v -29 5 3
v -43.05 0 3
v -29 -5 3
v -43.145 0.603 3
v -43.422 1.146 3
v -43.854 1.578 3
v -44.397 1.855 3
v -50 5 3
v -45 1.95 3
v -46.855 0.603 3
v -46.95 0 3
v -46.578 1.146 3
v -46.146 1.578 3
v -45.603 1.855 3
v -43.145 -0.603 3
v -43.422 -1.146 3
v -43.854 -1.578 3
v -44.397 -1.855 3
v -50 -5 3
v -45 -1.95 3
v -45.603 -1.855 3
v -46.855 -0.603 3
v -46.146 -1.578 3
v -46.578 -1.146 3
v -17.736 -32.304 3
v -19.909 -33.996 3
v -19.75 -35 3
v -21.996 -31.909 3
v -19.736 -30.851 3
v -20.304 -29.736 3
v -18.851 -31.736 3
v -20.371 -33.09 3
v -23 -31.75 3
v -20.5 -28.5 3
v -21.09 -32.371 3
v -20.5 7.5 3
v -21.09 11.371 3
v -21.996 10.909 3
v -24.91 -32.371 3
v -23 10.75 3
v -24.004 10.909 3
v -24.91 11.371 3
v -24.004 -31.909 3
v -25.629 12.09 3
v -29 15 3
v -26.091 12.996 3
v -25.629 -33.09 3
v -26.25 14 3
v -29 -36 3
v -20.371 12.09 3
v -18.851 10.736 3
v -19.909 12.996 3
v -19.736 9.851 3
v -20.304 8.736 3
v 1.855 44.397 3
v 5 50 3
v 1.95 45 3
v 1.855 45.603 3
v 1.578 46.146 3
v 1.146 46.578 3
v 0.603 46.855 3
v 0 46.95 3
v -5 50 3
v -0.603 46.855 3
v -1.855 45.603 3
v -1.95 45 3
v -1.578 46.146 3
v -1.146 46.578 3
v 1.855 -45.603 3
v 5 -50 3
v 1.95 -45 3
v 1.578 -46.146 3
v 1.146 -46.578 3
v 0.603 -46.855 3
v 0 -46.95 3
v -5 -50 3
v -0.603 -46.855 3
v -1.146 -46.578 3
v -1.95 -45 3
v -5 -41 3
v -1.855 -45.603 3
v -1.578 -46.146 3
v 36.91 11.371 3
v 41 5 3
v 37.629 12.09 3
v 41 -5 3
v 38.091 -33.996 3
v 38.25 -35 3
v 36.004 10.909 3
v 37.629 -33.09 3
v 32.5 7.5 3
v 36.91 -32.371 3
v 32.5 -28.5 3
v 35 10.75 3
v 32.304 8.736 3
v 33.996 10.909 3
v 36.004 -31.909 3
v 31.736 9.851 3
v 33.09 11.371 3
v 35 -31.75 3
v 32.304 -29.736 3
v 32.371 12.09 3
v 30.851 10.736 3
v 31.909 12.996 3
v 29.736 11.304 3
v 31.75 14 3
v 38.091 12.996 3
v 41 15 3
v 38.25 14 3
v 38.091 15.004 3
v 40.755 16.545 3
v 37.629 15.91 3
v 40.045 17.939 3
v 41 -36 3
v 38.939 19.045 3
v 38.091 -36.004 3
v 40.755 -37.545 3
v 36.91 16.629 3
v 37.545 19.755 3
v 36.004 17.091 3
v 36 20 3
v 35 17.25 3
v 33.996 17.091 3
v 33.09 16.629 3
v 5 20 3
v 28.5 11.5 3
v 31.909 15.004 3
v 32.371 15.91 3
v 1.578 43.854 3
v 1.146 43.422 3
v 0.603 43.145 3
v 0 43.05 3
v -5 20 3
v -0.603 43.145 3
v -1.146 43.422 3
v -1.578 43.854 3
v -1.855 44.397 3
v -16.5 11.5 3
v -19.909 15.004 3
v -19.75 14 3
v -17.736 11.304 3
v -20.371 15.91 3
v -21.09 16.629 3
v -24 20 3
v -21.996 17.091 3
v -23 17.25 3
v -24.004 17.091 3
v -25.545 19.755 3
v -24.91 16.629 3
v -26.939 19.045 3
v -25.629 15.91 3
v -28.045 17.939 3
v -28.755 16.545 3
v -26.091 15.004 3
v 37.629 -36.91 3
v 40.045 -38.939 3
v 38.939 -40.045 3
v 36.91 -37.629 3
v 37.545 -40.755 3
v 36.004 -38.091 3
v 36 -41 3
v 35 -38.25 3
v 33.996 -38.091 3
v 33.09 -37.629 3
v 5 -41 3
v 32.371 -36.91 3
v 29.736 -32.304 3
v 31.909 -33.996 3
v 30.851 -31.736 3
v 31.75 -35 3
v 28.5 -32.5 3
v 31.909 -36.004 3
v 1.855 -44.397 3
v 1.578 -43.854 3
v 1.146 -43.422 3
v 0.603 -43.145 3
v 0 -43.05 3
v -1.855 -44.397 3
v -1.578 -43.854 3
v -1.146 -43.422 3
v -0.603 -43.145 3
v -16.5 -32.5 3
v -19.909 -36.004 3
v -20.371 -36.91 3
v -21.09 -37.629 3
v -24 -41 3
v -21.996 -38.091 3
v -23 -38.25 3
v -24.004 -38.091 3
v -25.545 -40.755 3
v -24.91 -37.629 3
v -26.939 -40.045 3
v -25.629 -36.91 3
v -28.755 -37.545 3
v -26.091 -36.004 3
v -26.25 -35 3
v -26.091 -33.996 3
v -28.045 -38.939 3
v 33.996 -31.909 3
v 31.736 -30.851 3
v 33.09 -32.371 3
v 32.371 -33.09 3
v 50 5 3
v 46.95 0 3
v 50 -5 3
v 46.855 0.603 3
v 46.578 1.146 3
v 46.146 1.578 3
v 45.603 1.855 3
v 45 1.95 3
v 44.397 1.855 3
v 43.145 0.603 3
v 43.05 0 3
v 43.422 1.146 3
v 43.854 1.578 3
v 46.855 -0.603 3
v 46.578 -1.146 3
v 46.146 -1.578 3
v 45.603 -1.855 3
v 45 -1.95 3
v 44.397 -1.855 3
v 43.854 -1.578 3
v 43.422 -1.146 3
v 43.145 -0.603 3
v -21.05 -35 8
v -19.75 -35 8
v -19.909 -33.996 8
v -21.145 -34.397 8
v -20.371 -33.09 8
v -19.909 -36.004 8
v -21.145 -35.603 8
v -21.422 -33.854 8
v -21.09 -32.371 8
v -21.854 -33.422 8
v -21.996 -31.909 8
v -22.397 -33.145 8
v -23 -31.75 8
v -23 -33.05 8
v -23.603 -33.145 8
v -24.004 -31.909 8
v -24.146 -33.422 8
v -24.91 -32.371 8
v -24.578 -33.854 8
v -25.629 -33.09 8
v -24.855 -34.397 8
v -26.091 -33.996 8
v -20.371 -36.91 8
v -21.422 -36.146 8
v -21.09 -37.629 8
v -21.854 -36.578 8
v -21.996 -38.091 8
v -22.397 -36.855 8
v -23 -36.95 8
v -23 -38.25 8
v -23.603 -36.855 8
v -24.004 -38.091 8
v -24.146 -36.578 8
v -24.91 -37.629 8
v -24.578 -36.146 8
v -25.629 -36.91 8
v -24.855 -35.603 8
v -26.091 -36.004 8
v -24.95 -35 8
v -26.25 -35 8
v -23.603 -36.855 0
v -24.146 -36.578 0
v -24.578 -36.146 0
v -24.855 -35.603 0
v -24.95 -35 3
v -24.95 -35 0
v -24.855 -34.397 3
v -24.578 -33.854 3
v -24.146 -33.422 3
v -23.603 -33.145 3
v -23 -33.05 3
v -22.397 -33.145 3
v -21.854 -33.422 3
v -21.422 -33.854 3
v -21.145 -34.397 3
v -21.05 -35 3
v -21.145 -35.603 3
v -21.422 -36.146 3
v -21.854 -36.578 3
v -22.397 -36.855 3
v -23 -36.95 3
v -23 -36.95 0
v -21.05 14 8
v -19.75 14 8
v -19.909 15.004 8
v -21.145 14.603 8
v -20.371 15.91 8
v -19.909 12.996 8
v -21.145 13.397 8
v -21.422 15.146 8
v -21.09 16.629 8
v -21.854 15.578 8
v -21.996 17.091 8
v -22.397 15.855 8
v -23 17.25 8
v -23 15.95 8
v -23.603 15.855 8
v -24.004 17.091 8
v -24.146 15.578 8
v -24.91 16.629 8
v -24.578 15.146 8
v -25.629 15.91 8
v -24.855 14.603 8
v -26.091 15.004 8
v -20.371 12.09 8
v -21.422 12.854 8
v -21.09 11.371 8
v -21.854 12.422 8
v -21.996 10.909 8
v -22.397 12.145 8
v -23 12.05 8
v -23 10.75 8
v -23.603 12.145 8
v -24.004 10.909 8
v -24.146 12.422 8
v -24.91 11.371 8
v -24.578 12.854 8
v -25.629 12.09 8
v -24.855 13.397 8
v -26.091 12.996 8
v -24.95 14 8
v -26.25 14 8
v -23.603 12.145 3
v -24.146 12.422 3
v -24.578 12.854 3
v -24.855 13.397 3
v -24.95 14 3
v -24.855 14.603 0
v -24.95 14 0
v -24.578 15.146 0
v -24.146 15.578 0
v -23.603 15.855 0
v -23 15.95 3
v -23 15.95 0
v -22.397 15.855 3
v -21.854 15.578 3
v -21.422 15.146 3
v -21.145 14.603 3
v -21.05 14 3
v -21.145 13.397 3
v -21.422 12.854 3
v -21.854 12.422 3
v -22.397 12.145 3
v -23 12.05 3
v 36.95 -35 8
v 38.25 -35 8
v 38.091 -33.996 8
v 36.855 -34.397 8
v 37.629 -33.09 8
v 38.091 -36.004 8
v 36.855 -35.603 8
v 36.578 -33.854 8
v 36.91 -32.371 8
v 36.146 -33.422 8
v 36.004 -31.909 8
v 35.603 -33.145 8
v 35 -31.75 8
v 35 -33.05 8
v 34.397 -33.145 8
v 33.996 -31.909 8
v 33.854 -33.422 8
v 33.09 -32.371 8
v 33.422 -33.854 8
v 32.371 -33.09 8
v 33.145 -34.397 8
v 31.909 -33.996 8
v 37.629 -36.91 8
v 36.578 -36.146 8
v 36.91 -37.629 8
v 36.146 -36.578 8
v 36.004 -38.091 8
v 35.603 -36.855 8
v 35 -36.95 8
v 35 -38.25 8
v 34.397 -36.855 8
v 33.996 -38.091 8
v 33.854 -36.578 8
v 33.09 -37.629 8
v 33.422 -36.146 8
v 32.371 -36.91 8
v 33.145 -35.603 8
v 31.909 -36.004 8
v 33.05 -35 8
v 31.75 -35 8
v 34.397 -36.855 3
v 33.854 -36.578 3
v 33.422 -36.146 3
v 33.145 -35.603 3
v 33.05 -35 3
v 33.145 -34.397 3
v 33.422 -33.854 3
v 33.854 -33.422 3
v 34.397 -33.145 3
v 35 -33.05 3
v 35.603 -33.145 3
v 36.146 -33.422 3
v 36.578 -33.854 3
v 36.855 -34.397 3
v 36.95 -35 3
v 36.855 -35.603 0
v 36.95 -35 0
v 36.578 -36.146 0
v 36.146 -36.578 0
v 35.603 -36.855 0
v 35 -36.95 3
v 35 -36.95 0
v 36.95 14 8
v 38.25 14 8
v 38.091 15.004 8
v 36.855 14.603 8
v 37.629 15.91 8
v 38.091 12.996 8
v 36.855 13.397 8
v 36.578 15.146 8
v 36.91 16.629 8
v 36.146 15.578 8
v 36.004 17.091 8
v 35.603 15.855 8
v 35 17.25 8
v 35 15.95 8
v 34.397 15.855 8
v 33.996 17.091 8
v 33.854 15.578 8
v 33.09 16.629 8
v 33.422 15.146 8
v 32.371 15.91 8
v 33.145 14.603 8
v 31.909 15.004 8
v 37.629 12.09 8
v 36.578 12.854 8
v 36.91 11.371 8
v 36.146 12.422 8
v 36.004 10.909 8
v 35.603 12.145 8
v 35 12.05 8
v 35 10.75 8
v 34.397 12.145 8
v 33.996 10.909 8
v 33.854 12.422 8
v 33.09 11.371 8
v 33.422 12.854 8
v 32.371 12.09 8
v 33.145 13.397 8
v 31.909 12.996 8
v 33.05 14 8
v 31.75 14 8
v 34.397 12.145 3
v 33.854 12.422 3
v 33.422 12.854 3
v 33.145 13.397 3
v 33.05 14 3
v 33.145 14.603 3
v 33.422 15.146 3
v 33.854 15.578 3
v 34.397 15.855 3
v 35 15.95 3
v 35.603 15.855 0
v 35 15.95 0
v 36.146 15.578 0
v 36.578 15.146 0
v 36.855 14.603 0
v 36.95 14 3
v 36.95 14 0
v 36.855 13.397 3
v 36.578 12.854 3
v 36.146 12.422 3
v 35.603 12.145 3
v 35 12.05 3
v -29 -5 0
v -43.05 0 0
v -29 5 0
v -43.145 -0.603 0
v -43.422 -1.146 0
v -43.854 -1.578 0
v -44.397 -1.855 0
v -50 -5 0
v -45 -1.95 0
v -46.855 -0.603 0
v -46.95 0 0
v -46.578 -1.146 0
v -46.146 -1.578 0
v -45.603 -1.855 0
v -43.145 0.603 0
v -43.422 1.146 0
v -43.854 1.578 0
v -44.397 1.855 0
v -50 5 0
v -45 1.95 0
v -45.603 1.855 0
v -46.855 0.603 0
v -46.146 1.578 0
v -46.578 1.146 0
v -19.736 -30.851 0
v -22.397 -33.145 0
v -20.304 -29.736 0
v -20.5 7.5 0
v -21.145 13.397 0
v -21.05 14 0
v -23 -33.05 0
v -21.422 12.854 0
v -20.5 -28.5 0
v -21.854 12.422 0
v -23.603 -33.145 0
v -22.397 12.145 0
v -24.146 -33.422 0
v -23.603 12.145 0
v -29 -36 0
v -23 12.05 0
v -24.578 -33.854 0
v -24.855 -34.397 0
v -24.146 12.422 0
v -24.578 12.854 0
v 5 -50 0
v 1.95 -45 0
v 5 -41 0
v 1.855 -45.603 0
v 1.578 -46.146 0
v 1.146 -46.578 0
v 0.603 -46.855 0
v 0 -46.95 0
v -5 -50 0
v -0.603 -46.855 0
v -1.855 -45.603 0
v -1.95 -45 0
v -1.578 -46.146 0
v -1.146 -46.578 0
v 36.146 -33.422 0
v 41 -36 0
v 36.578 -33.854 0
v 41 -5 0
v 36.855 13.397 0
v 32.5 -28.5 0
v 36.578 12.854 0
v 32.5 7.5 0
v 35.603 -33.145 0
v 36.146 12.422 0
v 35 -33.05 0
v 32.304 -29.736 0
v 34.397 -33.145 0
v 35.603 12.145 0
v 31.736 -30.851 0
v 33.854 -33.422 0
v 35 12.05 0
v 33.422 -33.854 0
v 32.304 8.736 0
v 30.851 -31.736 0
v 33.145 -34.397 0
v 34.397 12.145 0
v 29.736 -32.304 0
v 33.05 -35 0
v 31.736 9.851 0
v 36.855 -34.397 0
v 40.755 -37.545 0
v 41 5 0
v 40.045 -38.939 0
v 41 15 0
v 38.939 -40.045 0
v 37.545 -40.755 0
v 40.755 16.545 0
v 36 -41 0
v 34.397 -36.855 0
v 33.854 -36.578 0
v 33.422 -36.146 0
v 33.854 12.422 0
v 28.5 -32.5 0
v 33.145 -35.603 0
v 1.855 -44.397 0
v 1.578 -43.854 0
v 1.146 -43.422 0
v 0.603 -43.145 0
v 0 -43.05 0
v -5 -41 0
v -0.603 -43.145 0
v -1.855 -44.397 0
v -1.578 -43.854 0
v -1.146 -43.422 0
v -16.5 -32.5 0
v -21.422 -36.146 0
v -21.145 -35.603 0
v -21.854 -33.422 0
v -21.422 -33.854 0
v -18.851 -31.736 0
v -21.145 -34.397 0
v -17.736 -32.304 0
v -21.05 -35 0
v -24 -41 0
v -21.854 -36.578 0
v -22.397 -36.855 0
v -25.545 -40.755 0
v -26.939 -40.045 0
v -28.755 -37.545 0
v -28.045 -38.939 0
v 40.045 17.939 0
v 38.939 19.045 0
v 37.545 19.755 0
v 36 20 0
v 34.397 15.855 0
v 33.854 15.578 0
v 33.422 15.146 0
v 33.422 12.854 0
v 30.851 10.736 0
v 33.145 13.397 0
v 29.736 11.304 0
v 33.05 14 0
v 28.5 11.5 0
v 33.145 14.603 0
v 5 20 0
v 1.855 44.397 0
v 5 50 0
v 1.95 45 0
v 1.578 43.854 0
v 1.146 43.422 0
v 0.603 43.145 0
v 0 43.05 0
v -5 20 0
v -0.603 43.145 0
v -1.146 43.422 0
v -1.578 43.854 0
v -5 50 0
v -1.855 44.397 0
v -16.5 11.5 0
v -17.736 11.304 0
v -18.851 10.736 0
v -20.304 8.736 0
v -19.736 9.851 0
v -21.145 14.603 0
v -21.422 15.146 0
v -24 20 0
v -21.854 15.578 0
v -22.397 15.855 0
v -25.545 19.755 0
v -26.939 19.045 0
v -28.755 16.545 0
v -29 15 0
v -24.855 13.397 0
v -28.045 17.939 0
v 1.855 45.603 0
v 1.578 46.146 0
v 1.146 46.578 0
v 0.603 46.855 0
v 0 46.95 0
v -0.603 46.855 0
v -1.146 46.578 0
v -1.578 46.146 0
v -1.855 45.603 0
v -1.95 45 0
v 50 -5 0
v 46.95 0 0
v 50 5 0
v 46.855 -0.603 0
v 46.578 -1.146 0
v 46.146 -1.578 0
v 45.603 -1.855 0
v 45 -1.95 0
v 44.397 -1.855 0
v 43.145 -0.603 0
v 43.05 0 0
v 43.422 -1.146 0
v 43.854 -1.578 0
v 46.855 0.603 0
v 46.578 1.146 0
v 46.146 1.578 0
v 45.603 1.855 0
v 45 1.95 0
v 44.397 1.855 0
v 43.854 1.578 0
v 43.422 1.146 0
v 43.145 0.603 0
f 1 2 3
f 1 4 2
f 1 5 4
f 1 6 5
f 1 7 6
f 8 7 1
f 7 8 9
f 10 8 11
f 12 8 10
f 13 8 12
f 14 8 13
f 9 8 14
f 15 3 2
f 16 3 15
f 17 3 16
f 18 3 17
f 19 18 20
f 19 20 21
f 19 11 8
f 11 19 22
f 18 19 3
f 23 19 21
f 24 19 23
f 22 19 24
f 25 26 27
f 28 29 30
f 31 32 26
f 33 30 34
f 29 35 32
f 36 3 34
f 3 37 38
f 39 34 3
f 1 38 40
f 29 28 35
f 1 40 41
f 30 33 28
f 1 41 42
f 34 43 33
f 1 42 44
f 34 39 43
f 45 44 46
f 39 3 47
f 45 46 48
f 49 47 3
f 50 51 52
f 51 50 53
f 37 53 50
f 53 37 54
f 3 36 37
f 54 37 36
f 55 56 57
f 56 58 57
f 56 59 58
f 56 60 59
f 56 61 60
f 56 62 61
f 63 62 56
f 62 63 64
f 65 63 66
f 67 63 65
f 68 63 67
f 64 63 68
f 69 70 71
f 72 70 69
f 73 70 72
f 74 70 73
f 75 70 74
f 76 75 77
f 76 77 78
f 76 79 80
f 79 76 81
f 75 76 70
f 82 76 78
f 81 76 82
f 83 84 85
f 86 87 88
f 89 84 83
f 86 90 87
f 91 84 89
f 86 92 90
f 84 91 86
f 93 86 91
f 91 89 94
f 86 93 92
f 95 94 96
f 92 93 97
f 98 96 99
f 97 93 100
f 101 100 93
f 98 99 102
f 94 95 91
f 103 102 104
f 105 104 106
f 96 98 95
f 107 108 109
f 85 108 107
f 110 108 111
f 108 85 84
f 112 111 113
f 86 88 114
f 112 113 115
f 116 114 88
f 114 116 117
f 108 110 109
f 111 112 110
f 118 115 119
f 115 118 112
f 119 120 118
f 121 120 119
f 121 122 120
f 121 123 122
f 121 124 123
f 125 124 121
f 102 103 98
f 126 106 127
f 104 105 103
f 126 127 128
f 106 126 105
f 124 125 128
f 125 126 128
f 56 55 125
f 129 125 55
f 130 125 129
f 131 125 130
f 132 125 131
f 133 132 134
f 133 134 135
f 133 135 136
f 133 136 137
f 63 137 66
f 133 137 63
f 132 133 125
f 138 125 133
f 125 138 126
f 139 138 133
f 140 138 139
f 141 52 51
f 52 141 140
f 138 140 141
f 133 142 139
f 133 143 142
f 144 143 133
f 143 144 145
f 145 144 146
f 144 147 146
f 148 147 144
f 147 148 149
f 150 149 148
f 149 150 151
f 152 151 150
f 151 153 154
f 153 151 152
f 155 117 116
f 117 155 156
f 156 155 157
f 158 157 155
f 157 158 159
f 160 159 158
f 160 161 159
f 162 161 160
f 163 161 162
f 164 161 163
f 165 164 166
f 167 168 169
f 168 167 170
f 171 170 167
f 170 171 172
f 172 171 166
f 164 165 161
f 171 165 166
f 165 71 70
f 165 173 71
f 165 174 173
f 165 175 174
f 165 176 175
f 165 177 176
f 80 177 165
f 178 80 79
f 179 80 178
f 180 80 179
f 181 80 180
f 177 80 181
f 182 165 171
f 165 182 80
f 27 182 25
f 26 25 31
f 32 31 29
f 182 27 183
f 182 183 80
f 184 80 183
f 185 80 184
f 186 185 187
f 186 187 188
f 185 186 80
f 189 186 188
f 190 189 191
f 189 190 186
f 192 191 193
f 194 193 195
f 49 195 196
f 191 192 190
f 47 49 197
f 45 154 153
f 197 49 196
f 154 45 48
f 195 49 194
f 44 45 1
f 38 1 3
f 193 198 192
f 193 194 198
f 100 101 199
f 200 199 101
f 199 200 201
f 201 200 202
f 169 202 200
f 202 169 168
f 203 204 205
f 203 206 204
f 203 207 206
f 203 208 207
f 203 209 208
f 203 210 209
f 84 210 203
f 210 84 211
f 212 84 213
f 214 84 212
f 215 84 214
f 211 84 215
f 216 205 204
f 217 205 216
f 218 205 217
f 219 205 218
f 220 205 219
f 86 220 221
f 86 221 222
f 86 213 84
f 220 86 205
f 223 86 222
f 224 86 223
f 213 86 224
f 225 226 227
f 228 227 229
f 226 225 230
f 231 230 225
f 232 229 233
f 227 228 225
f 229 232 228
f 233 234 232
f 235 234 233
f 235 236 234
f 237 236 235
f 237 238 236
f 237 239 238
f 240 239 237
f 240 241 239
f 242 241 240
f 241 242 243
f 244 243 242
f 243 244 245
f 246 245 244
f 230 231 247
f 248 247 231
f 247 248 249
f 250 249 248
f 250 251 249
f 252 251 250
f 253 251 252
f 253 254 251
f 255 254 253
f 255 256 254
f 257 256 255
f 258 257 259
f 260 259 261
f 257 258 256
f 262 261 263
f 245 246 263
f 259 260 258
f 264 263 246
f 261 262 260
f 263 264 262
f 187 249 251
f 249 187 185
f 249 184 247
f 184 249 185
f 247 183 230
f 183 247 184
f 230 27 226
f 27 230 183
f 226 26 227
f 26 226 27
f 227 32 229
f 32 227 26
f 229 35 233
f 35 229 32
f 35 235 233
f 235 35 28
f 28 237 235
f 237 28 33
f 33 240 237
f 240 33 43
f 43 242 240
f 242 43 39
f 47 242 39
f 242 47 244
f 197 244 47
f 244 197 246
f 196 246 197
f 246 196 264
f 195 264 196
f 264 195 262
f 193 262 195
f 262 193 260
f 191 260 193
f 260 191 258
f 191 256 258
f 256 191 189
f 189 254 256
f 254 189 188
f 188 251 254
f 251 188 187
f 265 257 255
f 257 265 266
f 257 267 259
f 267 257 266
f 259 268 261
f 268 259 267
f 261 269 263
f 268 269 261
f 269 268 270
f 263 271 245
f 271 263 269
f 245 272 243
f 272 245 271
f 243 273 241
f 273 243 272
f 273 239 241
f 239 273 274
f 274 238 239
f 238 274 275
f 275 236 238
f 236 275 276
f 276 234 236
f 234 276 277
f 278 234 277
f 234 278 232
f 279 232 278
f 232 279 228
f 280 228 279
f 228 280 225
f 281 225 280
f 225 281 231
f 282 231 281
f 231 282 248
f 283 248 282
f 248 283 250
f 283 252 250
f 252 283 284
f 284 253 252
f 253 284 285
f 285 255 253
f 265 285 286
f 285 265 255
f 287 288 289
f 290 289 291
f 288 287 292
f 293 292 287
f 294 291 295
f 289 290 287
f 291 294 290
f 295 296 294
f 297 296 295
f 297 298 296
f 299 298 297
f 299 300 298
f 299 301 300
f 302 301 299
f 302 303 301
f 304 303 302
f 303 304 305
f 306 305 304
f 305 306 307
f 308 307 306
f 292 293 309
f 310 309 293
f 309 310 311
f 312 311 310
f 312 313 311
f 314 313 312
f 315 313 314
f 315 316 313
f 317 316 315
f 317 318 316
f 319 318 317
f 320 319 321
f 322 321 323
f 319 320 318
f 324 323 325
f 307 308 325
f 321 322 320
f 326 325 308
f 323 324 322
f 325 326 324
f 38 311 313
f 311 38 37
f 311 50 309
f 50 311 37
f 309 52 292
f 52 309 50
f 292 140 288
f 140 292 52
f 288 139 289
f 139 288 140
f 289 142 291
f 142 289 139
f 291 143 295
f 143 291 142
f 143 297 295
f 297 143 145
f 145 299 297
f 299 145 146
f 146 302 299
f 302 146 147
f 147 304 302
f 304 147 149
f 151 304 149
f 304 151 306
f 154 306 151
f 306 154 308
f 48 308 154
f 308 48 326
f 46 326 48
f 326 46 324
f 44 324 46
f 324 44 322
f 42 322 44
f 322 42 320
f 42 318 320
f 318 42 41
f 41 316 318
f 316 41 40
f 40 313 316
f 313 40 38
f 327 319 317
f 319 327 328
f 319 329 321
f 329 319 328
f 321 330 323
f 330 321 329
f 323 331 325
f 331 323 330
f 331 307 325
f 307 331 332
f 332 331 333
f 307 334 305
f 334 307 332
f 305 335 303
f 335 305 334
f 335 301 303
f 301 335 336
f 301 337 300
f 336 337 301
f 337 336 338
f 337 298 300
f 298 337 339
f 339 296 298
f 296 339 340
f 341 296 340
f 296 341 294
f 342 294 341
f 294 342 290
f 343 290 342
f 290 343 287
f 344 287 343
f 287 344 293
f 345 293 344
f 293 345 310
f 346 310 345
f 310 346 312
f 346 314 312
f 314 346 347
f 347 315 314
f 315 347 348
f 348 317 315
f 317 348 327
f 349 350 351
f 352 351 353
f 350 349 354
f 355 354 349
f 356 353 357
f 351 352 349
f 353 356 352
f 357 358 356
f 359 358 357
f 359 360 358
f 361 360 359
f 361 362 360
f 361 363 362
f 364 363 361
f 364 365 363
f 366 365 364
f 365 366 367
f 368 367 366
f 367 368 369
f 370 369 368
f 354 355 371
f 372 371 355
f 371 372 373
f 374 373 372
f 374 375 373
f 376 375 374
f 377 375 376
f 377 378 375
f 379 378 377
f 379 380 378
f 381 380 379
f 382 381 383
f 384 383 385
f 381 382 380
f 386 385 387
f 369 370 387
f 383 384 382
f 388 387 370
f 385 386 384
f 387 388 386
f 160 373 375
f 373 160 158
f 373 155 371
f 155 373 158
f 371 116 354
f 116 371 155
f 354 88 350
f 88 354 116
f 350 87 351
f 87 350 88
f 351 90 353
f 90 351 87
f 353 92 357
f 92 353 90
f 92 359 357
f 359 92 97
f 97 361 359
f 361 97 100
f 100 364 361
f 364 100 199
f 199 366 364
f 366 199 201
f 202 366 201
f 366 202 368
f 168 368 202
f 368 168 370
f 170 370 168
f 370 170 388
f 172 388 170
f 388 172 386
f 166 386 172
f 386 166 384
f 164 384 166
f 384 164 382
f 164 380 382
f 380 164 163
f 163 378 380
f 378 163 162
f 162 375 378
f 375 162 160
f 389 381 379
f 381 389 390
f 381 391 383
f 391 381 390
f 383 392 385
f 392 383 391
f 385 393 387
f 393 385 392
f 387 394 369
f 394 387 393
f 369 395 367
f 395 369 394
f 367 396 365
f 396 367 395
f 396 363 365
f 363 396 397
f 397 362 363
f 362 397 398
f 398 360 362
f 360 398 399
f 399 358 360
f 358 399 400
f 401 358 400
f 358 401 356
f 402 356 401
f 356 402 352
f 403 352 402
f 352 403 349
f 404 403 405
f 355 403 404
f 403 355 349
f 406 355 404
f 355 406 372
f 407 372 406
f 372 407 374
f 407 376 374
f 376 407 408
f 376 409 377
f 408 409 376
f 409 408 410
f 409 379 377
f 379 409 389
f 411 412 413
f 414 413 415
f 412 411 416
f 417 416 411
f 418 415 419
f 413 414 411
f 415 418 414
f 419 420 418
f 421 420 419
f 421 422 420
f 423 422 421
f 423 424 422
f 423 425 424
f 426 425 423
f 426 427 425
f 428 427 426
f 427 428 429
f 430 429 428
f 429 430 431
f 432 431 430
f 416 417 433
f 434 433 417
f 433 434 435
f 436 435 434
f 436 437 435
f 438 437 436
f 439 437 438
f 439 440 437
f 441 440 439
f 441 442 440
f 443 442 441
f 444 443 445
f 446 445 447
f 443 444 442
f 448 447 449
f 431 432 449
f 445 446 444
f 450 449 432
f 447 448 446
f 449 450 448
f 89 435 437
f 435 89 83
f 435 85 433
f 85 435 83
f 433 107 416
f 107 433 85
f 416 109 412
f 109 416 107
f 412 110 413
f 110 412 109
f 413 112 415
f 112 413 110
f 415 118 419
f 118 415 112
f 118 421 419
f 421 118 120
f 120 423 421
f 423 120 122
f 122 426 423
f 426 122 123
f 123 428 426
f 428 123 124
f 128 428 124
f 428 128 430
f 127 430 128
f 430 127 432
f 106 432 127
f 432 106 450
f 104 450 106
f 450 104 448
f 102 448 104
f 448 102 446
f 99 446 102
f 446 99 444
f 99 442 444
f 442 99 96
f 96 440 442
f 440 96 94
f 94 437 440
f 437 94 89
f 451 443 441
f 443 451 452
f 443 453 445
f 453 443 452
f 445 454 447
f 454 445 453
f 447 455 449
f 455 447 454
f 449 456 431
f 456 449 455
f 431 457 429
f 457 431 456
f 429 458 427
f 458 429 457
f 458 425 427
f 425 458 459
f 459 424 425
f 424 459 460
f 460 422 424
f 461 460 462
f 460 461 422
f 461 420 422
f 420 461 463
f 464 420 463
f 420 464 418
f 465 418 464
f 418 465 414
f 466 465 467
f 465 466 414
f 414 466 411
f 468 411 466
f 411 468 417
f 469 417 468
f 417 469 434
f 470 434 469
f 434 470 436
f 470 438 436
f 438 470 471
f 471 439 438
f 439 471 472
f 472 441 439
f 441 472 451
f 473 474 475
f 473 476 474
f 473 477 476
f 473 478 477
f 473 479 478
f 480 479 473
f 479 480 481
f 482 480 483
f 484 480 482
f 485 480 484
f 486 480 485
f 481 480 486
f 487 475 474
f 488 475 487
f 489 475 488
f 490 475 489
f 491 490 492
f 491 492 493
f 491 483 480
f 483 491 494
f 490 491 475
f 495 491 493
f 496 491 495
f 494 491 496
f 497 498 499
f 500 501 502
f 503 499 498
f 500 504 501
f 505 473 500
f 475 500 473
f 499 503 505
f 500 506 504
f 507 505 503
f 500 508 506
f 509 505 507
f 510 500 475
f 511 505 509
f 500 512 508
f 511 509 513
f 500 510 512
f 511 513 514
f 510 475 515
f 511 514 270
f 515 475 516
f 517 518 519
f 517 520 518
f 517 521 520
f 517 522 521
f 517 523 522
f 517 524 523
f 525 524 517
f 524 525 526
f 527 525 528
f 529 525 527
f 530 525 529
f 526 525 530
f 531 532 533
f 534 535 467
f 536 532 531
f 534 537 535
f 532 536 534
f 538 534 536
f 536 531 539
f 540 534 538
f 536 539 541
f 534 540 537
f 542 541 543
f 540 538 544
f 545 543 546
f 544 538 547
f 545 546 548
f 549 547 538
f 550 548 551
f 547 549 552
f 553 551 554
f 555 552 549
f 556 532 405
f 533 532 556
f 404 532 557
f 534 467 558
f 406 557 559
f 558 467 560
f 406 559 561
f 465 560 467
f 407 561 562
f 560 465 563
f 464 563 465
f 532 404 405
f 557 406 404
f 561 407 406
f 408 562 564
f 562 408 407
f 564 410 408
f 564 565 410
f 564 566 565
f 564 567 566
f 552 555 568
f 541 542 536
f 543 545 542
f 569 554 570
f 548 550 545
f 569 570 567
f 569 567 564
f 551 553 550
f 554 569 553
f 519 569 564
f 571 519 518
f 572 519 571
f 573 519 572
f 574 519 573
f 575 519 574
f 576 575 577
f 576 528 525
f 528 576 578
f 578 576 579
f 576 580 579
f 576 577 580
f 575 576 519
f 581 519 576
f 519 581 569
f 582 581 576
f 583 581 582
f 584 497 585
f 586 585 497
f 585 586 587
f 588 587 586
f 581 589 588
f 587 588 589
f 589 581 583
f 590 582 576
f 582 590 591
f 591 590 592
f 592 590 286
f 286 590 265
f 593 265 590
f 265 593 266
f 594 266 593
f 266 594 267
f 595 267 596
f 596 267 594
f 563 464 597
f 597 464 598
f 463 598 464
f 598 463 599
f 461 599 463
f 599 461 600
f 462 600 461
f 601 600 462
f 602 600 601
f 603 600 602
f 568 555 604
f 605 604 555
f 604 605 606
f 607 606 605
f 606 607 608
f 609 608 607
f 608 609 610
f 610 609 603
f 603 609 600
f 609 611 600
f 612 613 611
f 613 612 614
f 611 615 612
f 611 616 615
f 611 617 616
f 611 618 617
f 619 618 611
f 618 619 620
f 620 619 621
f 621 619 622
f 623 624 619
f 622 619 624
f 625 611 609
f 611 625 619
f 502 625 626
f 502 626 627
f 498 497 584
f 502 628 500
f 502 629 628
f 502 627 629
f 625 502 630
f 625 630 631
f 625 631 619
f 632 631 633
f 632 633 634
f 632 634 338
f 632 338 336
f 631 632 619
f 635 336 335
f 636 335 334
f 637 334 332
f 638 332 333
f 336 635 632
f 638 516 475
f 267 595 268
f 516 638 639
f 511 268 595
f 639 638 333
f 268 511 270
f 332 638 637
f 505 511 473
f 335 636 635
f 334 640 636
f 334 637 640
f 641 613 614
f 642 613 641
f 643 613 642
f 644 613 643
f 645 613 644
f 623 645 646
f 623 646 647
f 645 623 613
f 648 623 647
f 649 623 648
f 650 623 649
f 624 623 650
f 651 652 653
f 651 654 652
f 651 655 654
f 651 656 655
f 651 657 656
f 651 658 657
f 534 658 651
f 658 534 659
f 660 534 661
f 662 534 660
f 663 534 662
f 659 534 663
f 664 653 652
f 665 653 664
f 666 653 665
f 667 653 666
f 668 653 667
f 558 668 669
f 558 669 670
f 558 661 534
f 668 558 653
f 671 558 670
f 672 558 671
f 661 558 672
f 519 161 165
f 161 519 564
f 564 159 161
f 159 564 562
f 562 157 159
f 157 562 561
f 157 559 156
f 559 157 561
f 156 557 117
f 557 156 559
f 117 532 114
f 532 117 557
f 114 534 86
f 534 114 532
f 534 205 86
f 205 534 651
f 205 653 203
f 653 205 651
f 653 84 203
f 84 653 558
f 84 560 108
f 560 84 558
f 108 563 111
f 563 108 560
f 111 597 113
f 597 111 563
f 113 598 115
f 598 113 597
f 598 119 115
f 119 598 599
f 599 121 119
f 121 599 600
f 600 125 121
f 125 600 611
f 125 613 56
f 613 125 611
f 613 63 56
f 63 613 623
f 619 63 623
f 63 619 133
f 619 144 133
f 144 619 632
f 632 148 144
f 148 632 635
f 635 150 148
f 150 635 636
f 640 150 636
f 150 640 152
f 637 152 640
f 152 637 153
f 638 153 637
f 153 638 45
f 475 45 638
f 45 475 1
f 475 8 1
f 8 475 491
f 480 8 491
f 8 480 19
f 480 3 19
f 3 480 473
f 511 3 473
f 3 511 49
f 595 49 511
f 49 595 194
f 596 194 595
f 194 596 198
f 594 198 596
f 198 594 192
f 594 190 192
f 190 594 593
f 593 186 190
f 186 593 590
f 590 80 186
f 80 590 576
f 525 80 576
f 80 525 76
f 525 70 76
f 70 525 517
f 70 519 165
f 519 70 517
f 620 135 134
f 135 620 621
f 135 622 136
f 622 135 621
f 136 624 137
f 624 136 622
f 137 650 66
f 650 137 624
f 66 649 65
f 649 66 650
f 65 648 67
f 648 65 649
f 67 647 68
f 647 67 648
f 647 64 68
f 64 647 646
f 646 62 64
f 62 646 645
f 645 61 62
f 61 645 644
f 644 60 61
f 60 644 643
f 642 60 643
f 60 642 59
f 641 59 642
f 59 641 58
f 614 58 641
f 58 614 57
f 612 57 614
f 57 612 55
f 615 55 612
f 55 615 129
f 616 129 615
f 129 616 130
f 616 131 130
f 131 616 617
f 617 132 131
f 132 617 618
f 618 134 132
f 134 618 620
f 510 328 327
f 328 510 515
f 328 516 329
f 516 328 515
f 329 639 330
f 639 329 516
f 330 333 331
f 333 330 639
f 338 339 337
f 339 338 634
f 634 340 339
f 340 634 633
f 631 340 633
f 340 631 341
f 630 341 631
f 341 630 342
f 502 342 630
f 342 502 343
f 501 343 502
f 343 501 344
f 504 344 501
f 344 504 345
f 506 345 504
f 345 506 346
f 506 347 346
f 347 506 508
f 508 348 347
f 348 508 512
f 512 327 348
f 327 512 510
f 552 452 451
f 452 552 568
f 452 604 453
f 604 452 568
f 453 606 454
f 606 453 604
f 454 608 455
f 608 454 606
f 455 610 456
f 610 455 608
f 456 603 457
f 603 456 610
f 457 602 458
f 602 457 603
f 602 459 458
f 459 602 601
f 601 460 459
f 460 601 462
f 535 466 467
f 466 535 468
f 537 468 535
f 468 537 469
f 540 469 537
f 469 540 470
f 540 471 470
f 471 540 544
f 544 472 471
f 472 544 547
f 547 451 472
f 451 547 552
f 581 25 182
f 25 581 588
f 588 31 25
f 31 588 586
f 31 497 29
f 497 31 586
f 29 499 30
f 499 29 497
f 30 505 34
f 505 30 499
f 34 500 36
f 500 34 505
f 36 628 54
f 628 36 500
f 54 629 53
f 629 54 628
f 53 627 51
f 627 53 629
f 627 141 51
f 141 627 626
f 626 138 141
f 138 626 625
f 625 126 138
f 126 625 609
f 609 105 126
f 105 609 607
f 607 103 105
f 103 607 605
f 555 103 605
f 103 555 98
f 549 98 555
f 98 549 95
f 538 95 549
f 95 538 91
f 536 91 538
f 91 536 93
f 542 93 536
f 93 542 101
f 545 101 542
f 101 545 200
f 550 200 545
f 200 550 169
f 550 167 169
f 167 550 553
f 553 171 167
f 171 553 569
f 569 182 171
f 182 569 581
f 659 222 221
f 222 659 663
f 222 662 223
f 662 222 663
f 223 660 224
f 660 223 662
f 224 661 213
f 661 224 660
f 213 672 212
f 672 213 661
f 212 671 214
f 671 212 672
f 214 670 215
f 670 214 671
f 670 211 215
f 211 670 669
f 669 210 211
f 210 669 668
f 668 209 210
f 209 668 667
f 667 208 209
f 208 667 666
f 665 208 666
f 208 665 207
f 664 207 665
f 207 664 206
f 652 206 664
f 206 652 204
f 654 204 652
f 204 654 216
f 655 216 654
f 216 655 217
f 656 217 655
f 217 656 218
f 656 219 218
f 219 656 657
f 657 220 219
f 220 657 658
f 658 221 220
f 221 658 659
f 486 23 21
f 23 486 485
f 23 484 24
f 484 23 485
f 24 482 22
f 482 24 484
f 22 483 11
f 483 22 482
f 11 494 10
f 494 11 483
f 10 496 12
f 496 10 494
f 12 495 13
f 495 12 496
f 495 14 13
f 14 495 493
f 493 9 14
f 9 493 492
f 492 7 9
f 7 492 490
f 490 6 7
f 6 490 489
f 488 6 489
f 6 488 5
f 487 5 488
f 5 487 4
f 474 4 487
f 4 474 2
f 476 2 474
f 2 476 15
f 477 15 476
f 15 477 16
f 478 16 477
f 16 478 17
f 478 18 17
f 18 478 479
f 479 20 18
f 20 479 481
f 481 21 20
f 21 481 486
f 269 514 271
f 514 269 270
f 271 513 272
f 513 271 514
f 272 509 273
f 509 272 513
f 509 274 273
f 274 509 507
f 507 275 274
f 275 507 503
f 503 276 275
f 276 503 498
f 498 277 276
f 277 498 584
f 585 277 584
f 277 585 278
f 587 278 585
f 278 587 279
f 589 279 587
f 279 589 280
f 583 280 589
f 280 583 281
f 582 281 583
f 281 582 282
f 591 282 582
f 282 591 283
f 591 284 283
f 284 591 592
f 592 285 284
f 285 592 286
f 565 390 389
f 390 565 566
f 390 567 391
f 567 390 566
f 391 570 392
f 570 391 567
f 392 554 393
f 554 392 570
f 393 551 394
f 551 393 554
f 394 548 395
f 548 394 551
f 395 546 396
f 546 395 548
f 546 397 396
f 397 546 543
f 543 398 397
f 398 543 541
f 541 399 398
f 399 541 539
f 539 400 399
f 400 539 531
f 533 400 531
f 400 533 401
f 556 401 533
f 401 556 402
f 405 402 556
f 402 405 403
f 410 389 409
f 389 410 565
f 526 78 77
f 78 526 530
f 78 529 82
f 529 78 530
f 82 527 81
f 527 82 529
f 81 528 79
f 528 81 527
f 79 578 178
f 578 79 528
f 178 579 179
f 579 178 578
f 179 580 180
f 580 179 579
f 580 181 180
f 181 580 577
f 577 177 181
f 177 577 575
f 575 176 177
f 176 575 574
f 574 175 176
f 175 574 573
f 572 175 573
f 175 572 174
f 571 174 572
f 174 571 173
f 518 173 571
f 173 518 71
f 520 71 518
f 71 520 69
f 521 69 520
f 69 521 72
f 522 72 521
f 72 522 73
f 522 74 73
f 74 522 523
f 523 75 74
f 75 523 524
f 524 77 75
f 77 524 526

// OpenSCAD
boxPostsDistance = 90;

raspberrypiHoleX = 58;
raspberrypiHoleY = 49;

raspberrypiStandOffHeight = 5;

standOffBoardHeight = 3;

innerCornerRadius = 4;
outerCornerRadius = 10;

outerOffset = 6;

/*piOffsetX = 7;*/
/*piOffsetY = 10;*/
piOffsetX = boxPostsDistance/2 - raspberrypiHoleX/2 - 10;
piOffsetY = boxPostsDistance/2 - raspberrypiHoleY/2 - 10;

linear_extrude( standOffBoardHeight )
difference() {


  union() {
    /* support board wings */
    for( a = [0,1] ) {
      rotate([0,0,a*90])
      square( [ boxPostsDistance + 10 , 10 ], center = true );
    }

    hull() {
      for( a = [-1,1] ) {
        for( b = [-1,1] ) {
          translate([piOffsetX, -piOffsetY, 0])
          translate( [ a * -raspberrypiHoleX/2 + a * -outerOffset, b * -raspberrypiHoleY/2 + b * -outerOffset, 0 ] )
          translate( [ a * outerCornerRadius/2, b * outerCornerRadius/2, 0 ] )
          circle( d = outerCornerRadius, center = true, $fn = 20 );
        }
      }
    }

  }

  union() {

    /*support board wing holes */
    for( a = [0,1] ) {
      rotate([0,0,a*90]) {
        translate([ ( boxPostsDistance / 2 ), 0, 0 ])
        circle( d = 3.9, $fn = 20 );
        translate([ ( - boxPostsDistance / 2 ), 0, 0 ])
        circle( d = 3.9, $fn = 20 );
      }
    }

    /* lower board holes */
    for( a = [-1,1] ) {
      for( b = [-1,1] ) {
        translate([piOffsetX, -piOffsetY, 0])
        translate([ a * raspberrypiHoleX/2 , b * raspberrypiHoleY/2 , 0 ])
        circle( d = 3.9, $fn = 20 );
      }
    }

    /* central support board */
    hull() {
      for( a = [-1,1] ) {
        for( b = [-1,1] ) {
          translate([piOffsetX, -piOffsetY, 0])
          translate( [ ( a * ( raspberrypiHoleX/2 - innerCornerRadius-2.5 ) ), ( b * ( raspberrypiHoleY/2 - innerCornerRadius-2.5 ) ), 0 ] )
          circle( r = innerCornerRadius, center = true, $fn = 20 );
        }
      }
    }

  }

}

/* loop through inverse and direct positions for the stand offs */
for( a = [-1,1] ) {
  for( b = [-1,1] ) {

    /* position the stand offs */
    translate([piOffsetX, -piOffsetY, 0])
    translate([ a * raspberrypiHoleX/2 , b * raspberrypiHoleY/2 ,standOffBoardHeight ])
    linear_extrude( raspberrypiStandOffHeight )
    difference() {
      circle( d = 6.5, $fn = 20 );
      circle( d = 3.9, $fn = 20 );
    }

  }
}
